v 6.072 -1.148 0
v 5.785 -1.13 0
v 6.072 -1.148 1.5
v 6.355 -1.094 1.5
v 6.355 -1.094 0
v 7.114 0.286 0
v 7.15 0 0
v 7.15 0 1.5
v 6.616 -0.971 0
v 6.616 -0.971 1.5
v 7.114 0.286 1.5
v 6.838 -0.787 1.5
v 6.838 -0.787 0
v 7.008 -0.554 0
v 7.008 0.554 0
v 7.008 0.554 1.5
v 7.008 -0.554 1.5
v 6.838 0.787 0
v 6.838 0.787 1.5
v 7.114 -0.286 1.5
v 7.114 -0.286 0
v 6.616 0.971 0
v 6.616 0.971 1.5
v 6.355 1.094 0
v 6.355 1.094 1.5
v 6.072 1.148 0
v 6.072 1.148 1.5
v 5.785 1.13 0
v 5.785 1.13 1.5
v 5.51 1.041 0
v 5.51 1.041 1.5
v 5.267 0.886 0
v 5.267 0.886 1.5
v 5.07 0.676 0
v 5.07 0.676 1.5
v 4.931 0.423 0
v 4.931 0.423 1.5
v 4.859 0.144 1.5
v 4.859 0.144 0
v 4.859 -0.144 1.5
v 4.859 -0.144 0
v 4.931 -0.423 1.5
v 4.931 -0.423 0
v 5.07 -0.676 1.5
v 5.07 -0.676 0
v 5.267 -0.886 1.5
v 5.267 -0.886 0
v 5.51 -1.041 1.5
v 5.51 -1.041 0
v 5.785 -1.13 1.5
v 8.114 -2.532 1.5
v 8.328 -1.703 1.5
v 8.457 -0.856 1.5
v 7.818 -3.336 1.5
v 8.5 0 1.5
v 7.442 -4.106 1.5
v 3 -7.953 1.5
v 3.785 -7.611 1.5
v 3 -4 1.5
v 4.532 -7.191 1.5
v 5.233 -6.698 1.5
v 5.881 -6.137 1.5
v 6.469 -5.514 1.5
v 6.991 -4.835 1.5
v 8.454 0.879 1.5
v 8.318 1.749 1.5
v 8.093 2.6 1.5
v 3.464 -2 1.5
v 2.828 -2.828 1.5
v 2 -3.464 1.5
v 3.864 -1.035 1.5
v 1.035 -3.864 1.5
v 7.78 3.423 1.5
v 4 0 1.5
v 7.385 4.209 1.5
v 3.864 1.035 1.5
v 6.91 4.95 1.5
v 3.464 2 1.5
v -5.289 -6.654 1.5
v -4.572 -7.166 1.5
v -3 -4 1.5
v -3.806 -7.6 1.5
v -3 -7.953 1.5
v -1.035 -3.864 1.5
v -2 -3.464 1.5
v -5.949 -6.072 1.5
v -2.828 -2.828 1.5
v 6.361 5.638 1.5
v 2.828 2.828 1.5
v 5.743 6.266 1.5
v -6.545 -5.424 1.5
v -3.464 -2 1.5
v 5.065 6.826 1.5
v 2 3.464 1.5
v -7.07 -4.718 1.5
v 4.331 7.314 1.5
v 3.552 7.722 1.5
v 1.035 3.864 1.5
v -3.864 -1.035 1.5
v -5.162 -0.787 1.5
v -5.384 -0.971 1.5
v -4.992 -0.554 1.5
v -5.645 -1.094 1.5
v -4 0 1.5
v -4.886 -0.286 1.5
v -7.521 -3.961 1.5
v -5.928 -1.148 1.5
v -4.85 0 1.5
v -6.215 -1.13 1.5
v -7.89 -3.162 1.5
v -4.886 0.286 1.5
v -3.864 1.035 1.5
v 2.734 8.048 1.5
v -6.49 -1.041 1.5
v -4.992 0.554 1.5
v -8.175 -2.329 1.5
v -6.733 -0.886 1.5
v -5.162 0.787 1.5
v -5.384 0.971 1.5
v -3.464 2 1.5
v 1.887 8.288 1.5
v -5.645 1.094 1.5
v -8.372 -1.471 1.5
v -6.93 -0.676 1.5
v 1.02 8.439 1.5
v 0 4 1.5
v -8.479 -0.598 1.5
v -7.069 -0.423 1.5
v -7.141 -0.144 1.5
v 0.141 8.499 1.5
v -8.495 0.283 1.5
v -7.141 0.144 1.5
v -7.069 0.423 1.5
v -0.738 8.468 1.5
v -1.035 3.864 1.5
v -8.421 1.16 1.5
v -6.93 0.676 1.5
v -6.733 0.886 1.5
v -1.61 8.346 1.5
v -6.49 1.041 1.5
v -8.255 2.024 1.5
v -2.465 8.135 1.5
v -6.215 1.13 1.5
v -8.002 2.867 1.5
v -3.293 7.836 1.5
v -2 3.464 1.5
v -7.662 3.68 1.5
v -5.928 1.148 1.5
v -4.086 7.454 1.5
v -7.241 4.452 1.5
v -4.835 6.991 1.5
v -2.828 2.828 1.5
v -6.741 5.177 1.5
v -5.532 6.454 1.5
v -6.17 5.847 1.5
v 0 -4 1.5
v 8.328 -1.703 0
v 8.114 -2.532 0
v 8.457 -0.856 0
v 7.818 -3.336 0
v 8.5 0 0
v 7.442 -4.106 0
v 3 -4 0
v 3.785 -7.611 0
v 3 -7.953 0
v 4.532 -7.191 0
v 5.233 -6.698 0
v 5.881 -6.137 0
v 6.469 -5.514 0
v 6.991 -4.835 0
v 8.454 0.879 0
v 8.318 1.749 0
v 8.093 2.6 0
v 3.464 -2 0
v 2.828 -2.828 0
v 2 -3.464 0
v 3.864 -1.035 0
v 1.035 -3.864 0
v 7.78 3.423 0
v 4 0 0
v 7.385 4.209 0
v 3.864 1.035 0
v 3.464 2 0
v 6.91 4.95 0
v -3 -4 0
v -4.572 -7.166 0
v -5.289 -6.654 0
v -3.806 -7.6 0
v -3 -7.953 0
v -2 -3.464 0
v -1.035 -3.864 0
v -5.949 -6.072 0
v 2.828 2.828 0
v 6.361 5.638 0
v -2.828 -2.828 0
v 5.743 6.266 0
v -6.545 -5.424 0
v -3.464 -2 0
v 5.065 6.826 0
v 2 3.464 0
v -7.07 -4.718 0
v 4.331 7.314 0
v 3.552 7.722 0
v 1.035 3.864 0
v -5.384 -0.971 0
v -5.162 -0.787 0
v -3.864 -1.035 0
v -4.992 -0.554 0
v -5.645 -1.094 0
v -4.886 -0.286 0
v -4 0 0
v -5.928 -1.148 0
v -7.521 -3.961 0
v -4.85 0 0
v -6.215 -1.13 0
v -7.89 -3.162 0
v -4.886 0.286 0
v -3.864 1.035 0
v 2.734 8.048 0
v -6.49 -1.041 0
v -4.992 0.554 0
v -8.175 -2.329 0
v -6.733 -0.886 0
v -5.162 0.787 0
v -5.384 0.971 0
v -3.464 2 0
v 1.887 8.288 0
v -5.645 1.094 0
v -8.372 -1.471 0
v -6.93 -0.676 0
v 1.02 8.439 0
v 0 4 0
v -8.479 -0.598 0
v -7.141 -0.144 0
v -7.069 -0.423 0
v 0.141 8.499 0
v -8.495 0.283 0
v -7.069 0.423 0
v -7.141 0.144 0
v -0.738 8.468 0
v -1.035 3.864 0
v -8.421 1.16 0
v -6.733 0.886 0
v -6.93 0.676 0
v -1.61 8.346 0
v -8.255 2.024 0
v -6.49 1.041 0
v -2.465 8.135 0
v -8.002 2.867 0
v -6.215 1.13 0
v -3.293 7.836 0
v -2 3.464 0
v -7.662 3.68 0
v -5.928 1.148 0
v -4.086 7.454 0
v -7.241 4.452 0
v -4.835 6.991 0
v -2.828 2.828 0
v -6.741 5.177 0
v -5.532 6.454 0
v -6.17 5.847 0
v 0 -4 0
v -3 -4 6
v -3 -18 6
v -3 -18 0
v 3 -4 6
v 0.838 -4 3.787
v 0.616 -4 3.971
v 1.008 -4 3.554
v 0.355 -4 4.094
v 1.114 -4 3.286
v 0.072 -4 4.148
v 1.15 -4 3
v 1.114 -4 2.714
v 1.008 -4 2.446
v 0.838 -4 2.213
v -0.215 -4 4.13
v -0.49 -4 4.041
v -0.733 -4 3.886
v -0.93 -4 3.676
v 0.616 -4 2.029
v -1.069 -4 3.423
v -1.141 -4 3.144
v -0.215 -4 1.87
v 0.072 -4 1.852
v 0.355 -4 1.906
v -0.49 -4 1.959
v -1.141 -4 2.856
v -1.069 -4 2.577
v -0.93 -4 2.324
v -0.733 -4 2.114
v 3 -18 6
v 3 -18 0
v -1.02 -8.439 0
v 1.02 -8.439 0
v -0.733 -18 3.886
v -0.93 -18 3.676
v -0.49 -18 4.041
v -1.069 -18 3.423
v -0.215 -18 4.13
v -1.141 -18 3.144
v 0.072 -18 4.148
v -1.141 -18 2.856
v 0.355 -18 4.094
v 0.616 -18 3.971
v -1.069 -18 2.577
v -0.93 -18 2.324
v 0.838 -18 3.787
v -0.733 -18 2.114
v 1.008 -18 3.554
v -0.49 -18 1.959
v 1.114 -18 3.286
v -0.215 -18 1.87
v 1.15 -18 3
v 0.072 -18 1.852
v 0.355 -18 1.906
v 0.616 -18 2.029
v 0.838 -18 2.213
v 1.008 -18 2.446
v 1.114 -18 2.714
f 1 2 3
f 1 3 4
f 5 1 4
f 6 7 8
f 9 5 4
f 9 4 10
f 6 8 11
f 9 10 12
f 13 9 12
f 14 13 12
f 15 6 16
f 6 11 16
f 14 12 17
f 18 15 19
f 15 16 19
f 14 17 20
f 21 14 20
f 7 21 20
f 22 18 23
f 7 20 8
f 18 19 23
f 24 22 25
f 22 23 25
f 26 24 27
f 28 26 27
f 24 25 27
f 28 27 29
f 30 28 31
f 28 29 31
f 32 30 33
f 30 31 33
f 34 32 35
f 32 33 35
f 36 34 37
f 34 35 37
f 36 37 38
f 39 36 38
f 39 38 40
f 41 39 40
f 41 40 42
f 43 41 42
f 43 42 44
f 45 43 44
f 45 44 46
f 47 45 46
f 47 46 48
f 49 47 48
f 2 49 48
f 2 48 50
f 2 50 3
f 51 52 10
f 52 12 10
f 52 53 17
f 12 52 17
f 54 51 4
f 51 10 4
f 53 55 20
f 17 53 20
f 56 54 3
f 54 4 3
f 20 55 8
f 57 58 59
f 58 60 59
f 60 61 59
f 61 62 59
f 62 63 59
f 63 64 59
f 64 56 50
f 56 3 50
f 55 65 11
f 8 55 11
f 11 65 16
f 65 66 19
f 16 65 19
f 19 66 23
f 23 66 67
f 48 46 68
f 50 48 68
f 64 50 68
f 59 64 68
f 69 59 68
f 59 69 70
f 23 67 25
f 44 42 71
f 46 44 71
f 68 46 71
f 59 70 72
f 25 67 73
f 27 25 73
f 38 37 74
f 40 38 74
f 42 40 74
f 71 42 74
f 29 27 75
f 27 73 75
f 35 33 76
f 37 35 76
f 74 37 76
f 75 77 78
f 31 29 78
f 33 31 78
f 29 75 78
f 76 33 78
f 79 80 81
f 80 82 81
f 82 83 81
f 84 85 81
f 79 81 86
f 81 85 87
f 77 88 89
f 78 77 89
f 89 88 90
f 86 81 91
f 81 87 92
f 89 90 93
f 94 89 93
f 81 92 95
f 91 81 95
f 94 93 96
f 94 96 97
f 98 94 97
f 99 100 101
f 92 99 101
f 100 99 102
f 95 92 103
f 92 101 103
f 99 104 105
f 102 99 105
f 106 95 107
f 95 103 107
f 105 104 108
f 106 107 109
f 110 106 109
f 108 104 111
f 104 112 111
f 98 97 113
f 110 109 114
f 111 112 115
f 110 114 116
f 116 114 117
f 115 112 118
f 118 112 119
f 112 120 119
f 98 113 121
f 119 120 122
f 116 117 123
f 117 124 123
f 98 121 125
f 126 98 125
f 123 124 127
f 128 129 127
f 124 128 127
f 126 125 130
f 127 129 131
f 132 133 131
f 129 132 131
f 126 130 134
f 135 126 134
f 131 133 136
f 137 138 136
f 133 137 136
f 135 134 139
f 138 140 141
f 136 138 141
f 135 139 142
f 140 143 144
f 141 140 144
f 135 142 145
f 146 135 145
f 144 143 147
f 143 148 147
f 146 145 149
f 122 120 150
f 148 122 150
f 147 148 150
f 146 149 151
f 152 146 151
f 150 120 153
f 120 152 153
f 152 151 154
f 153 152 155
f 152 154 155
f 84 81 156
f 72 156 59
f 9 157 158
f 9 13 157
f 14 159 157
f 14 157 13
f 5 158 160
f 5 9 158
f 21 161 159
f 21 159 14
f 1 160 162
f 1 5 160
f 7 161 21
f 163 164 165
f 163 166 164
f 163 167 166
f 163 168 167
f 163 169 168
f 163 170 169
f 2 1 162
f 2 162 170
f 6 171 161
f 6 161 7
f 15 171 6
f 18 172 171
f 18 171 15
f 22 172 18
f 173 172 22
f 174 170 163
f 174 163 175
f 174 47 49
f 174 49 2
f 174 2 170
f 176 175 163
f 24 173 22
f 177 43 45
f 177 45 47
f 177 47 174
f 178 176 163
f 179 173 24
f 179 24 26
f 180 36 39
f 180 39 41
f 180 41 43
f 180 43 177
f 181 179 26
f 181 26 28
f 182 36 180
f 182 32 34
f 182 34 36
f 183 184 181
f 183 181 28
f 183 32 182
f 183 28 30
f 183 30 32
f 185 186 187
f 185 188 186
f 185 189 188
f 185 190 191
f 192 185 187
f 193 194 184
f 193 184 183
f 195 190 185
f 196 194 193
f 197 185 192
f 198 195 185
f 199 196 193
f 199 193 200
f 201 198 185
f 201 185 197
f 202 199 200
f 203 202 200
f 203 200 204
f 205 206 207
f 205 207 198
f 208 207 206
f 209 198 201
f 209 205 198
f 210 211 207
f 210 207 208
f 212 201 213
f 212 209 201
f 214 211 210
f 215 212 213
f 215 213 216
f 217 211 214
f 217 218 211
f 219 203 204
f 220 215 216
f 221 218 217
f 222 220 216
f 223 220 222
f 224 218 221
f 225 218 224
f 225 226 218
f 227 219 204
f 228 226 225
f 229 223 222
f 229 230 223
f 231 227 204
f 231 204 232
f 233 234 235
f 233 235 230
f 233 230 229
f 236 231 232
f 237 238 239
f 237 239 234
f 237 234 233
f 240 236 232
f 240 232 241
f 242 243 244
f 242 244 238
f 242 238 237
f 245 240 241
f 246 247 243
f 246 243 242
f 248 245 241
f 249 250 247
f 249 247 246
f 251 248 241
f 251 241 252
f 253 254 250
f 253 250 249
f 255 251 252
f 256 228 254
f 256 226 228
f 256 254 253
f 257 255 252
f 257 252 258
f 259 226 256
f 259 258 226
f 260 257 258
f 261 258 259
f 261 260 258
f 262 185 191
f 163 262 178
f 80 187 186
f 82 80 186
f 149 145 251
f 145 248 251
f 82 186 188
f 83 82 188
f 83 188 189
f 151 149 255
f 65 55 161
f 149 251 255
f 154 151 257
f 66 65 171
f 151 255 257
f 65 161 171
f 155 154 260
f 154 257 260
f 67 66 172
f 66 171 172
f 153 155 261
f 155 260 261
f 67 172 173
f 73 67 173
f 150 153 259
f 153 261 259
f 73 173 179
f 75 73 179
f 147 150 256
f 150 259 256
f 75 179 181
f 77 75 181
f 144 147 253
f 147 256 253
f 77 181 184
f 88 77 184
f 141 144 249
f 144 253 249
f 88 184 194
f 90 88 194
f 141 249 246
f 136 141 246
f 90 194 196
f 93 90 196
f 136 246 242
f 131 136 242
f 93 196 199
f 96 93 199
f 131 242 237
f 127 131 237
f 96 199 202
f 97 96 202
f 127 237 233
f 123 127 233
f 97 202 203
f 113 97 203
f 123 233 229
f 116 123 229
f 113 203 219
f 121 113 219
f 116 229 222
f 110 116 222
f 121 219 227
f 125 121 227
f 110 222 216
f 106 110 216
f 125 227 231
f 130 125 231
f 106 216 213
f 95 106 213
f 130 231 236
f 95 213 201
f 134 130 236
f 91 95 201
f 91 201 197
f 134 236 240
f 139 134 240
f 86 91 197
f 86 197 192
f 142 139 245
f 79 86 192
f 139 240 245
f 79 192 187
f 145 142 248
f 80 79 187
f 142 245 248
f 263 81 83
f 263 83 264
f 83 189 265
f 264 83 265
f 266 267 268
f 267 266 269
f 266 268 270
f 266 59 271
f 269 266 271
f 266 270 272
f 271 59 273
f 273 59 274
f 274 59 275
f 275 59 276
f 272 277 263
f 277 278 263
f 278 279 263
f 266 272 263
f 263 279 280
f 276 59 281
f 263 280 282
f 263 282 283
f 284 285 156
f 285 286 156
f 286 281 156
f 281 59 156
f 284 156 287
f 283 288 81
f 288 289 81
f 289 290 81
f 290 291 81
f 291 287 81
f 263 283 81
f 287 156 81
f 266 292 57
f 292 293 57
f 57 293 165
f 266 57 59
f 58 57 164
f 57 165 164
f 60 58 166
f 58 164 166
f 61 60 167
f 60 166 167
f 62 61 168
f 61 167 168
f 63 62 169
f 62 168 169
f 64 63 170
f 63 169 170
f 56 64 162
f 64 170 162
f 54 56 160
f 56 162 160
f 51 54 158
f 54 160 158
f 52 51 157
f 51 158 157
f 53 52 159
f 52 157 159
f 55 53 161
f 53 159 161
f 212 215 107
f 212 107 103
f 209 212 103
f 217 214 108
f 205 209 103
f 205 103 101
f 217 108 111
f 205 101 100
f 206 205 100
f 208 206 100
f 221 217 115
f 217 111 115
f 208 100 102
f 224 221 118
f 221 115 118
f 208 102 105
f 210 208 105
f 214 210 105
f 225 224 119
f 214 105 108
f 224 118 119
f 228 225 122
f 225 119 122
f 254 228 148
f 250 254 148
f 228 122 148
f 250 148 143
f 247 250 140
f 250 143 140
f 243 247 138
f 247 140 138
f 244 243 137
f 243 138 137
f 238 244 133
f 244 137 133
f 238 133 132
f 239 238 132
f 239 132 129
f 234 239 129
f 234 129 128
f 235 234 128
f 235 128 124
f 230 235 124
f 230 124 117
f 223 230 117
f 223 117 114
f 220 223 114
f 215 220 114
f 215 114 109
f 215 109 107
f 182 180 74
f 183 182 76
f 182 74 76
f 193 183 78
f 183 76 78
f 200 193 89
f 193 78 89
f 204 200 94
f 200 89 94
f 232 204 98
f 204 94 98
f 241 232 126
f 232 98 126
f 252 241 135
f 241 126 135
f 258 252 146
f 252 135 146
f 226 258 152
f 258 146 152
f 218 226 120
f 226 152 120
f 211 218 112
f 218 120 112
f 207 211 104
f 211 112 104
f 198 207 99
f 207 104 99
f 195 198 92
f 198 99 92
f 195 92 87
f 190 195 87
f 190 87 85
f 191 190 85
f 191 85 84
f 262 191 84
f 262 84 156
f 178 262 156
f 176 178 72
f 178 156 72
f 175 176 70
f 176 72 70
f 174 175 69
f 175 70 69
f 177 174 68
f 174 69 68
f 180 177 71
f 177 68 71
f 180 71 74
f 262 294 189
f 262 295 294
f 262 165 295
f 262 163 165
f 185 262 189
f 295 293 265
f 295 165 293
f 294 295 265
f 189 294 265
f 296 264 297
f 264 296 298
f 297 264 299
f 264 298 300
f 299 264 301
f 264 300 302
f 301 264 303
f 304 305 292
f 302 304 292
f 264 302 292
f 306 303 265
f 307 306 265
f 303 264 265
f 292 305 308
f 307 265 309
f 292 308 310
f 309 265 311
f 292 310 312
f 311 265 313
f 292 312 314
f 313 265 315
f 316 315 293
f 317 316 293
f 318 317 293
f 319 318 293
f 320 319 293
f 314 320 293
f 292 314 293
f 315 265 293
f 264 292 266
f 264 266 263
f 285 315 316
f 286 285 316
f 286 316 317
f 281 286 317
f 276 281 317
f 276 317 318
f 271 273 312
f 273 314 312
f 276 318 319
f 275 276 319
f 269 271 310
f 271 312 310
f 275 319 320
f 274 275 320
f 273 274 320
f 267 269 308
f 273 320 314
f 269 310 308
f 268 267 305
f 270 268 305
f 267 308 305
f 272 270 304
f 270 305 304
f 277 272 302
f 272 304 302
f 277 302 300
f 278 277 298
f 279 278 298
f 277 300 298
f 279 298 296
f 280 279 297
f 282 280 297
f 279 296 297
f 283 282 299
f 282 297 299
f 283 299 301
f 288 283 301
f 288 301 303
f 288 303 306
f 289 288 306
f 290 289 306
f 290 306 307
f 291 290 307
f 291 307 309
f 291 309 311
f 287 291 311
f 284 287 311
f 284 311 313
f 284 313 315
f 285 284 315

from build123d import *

# Parameters (mm, degrees)
SKETCH_R        = 8.5
PAD_DEPTH       = 1.5
SKETCH001_R     = 4
SKETCH001_R_2   = 1.15
POCKET_DEPTH    = 5
SKETCH002_W     = 6
SKETCH002_H     = 14
PAD001_DEPTH    = 6
SKETCH003_R     = 1.15
POCKET001_DEPTH = 15


with BuildPart() as part:
    # Sketch → Pad (new body)
    with BuildSketch(Plane.XY):
        Circle(SKETCH_R)
    extrude(amount=PAD_DEPTH)

    # Sketch001 → Pocket (cut)
    with BuildSketch(Plane.XY.offset(1.5)):
        Circle(SKETCH001_R)
        with Locations((-6, 0)):
            Circle(SKETCH001_R_2)
        with Locations((6, 0)):
            Circle(SKETCH001_R_2)
    extrude(amount=-POCKET_DEPTH, mode=Mode.SUBTRACT)

    # Sketch002 → Pad001 (new body)
    with BuildSketch(Plane(origin=(0, 0, 0), x_dir=(1, 0, 0), z_dir=(0, 0, -1))):
        with Locations((0, 11)):
            Rectangle(SKETCH002_W, SKETCH002_H)
    extrude(amount=-PAD001_DEPTH)

    # Sketch003 → Pocket001 (cut)
    with BuildSketch(Plane.XZ.offset(18)):
        with Locations((0, 3)):
            Circle(SKETCH003_R)
    extrude(amount=-POCKET001_DEPTH, mode=Mode.SUBTRACT)


solid = part.part
